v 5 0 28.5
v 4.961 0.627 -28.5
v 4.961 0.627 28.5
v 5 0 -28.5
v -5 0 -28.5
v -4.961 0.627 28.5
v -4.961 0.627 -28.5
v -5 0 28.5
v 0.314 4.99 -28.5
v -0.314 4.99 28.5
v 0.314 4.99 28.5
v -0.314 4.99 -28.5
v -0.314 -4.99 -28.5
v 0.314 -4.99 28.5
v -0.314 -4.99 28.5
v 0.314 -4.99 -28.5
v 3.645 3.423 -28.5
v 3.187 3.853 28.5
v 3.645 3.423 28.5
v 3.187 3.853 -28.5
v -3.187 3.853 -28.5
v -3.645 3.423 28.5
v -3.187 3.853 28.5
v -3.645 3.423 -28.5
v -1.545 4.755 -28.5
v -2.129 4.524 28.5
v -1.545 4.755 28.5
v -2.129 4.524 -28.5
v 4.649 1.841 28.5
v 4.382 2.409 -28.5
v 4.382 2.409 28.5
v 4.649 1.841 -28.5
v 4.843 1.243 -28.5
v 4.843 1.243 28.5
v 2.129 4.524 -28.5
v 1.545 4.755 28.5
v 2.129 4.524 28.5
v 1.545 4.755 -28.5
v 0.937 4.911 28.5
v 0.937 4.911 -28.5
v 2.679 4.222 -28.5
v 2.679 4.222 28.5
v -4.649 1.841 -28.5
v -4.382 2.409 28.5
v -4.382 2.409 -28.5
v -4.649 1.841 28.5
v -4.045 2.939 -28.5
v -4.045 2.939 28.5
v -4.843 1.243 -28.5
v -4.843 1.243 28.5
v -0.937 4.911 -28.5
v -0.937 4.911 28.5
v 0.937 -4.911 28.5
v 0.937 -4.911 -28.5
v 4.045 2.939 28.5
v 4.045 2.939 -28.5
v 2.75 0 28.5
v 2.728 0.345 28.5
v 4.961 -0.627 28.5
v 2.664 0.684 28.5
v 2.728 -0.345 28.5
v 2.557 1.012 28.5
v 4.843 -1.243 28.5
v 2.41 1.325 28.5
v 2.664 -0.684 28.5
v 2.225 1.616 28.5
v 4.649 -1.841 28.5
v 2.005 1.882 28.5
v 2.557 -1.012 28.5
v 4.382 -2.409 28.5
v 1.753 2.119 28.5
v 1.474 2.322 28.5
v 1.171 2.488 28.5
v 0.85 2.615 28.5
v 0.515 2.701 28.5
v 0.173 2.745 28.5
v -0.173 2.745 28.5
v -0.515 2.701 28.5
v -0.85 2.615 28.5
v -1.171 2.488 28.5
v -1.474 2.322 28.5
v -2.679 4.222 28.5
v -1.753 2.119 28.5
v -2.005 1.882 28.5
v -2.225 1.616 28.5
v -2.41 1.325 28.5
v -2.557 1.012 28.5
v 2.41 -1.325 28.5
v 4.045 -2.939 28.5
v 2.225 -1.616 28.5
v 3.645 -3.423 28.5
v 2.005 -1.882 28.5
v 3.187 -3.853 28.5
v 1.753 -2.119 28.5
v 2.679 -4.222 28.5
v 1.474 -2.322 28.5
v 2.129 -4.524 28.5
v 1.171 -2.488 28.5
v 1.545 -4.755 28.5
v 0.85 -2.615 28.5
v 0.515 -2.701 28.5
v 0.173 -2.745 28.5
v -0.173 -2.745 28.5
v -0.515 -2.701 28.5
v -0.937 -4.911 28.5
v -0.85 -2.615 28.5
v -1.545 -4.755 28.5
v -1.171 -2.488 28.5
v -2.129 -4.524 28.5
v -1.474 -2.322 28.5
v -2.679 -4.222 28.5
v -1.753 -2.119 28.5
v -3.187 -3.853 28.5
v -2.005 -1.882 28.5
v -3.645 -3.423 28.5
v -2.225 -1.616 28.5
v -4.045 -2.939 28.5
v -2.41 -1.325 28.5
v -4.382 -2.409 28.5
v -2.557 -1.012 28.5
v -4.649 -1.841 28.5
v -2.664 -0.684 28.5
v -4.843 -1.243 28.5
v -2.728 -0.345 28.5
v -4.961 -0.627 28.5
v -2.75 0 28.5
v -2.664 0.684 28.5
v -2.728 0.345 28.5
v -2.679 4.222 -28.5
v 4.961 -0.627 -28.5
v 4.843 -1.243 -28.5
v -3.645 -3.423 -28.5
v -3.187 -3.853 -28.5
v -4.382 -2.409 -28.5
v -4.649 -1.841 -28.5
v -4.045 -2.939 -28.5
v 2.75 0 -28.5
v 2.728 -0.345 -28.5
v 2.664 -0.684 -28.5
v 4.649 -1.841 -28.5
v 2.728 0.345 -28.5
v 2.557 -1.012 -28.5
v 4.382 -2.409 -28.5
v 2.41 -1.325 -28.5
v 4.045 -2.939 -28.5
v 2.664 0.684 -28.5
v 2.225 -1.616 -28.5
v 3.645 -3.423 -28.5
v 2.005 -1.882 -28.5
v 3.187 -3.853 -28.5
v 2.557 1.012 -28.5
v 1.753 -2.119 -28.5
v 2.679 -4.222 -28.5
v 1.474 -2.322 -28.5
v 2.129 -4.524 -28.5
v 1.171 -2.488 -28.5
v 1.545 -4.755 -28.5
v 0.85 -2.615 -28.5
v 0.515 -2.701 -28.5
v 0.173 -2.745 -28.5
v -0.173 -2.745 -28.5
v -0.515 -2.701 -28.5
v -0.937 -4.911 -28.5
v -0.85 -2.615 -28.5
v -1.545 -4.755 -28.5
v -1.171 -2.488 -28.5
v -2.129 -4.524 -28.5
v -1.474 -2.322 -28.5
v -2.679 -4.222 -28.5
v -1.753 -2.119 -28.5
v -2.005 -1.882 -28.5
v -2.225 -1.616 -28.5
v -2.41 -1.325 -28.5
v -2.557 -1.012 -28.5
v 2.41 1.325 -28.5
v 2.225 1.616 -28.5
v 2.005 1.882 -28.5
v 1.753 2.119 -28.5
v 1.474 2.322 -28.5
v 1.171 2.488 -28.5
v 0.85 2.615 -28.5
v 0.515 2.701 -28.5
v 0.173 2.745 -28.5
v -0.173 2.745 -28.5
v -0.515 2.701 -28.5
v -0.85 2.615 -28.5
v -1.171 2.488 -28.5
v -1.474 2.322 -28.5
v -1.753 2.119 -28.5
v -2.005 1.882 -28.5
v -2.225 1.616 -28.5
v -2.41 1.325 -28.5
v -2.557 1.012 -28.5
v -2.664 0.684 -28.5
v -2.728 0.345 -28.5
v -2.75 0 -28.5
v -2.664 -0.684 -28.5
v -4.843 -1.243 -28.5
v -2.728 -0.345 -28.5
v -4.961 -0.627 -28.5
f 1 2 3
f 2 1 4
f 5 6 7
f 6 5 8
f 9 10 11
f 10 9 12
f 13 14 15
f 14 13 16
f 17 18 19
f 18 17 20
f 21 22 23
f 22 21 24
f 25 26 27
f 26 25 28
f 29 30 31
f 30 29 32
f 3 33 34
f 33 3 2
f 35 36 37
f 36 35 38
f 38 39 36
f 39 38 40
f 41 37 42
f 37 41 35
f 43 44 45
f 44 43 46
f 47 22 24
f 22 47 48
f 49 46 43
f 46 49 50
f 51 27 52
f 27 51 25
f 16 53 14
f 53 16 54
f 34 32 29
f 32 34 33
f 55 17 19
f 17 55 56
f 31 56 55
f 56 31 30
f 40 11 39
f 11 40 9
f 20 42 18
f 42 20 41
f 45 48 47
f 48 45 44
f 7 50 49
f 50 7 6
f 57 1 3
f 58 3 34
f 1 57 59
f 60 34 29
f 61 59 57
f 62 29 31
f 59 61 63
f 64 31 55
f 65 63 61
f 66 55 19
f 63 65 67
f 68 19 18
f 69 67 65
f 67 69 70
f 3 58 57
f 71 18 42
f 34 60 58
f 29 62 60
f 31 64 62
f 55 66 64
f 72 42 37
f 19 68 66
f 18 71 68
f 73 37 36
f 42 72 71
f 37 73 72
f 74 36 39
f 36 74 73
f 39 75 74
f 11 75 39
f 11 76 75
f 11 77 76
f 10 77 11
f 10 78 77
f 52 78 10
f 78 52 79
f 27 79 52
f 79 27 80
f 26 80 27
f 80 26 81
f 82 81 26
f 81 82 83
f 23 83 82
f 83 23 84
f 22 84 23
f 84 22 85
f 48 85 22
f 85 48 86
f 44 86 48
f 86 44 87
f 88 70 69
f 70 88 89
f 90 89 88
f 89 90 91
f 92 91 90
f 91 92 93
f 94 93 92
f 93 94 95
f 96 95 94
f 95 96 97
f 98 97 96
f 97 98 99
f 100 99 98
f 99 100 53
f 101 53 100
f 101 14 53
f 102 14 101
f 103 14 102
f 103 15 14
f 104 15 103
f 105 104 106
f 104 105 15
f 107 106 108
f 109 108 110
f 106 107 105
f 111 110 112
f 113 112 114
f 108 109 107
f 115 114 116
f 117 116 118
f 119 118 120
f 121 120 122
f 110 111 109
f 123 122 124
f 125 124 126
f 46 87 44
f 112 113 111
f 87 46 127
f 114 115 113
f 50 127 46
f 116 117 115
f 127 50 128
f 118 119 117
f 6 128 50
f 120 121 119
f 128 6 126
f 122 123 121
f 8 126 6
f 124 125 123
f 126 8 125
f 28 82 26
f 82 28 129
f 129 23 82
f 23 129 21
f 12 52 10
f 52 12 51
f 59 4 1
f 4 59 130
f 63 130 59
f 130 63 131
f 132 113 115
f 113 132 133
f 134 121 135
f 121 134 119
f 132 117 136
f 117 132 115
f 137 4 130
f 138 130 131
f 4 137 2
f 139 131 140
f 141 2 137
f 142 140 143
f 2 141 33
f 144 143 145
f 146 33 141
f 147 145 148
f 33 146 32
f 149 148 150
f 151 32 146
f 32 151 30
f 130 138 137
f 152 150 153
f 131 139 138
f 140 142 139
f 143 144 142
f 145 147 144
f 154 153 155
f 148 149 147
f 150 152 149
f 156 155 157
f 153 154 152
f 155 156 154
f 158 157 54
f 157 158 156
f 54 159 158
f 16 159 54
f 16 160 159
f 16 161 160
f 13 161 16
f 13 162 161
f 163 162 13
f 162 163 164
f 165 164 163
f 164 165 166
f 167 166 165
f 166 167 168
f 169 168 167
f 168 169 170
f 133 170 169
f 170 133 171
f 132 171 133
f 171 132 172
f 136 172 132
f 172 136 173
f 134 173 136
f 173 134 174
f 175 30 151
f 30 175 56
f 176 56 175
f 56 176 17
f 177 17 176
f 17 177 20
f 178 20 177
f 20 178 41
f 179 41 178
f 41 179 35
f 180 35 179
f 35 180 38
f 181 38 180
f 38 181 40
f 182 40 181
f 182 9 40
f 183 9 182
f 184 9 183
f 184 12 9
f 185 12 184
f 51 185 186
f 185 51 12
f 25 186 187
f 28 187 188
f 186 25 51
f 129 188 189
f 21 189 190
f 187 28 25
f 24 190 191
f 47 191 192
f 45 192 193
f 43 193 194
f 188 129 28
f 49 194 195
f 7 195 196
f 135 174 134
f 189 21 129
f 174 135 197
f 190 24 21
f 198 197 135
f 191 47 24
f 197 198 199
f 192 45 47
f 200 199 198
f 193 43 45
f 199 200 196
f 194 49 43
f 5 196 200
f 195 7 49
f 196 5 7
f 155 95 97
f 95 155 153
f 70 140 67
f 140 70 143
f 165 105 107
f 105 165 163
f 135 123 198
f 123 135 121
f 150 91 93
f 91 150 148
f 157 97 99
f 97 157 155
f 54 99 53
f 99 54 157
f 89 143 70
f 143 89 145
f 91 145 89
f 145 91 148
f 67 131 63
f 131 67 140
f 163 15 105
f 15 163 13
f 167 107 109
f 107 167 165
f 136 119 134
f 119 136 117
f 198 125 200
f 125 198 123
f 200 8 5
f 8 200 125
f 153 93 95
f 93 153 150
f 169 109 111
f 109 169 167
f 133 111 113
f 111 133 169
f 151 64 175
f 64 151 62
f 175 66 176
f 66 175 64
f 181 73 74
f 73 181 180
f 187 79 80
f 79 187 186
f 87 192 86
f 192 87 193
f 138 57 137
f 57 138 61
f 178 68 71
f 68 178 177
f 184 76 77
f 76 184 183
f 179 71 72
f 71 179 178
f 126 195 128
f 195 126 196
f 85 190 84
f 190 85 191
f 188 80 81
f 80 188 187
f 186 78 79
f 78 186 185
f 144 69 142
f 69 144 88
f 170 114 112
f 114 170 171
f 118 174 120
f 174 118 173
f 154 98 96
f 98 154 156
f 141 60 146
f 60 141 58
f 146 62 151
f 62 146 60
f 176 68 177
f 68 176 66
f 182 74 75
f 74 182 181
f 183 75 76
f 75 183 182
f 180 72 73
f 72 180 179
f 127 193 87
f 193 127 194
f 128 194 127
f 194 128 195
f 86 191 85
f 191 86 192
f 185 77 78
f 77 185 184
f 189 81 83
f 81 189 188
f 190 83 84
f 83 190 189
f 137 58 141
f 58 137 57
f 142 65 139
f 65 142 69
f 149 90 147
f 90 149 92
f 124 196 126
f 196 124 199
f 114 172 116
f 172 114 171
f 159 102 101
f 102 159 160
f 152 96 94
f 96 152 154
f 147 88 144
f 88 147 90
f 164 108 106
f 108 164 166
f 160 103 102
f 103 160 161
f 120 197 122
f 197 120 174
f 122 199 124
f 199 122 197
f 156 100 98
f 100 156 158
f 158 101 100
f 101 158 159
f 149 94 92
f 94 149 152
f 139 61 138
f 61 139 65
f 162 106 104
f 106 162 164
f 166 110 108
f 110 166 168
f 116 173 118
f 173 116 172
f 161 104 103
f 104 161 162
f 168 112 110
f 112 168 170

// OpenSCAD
$fn = 50;


difference() {
	union() {
		translate(v = [0, 0, -28.5000000000]) {
			cylinder(h = 57, r = 5.0000000000);
		}
	}
	union() {
		translate(v = [0, 0, -100.0000000000]) {
			cylinder(h = 200, r = 2.7500000000);
		}
	}
}
